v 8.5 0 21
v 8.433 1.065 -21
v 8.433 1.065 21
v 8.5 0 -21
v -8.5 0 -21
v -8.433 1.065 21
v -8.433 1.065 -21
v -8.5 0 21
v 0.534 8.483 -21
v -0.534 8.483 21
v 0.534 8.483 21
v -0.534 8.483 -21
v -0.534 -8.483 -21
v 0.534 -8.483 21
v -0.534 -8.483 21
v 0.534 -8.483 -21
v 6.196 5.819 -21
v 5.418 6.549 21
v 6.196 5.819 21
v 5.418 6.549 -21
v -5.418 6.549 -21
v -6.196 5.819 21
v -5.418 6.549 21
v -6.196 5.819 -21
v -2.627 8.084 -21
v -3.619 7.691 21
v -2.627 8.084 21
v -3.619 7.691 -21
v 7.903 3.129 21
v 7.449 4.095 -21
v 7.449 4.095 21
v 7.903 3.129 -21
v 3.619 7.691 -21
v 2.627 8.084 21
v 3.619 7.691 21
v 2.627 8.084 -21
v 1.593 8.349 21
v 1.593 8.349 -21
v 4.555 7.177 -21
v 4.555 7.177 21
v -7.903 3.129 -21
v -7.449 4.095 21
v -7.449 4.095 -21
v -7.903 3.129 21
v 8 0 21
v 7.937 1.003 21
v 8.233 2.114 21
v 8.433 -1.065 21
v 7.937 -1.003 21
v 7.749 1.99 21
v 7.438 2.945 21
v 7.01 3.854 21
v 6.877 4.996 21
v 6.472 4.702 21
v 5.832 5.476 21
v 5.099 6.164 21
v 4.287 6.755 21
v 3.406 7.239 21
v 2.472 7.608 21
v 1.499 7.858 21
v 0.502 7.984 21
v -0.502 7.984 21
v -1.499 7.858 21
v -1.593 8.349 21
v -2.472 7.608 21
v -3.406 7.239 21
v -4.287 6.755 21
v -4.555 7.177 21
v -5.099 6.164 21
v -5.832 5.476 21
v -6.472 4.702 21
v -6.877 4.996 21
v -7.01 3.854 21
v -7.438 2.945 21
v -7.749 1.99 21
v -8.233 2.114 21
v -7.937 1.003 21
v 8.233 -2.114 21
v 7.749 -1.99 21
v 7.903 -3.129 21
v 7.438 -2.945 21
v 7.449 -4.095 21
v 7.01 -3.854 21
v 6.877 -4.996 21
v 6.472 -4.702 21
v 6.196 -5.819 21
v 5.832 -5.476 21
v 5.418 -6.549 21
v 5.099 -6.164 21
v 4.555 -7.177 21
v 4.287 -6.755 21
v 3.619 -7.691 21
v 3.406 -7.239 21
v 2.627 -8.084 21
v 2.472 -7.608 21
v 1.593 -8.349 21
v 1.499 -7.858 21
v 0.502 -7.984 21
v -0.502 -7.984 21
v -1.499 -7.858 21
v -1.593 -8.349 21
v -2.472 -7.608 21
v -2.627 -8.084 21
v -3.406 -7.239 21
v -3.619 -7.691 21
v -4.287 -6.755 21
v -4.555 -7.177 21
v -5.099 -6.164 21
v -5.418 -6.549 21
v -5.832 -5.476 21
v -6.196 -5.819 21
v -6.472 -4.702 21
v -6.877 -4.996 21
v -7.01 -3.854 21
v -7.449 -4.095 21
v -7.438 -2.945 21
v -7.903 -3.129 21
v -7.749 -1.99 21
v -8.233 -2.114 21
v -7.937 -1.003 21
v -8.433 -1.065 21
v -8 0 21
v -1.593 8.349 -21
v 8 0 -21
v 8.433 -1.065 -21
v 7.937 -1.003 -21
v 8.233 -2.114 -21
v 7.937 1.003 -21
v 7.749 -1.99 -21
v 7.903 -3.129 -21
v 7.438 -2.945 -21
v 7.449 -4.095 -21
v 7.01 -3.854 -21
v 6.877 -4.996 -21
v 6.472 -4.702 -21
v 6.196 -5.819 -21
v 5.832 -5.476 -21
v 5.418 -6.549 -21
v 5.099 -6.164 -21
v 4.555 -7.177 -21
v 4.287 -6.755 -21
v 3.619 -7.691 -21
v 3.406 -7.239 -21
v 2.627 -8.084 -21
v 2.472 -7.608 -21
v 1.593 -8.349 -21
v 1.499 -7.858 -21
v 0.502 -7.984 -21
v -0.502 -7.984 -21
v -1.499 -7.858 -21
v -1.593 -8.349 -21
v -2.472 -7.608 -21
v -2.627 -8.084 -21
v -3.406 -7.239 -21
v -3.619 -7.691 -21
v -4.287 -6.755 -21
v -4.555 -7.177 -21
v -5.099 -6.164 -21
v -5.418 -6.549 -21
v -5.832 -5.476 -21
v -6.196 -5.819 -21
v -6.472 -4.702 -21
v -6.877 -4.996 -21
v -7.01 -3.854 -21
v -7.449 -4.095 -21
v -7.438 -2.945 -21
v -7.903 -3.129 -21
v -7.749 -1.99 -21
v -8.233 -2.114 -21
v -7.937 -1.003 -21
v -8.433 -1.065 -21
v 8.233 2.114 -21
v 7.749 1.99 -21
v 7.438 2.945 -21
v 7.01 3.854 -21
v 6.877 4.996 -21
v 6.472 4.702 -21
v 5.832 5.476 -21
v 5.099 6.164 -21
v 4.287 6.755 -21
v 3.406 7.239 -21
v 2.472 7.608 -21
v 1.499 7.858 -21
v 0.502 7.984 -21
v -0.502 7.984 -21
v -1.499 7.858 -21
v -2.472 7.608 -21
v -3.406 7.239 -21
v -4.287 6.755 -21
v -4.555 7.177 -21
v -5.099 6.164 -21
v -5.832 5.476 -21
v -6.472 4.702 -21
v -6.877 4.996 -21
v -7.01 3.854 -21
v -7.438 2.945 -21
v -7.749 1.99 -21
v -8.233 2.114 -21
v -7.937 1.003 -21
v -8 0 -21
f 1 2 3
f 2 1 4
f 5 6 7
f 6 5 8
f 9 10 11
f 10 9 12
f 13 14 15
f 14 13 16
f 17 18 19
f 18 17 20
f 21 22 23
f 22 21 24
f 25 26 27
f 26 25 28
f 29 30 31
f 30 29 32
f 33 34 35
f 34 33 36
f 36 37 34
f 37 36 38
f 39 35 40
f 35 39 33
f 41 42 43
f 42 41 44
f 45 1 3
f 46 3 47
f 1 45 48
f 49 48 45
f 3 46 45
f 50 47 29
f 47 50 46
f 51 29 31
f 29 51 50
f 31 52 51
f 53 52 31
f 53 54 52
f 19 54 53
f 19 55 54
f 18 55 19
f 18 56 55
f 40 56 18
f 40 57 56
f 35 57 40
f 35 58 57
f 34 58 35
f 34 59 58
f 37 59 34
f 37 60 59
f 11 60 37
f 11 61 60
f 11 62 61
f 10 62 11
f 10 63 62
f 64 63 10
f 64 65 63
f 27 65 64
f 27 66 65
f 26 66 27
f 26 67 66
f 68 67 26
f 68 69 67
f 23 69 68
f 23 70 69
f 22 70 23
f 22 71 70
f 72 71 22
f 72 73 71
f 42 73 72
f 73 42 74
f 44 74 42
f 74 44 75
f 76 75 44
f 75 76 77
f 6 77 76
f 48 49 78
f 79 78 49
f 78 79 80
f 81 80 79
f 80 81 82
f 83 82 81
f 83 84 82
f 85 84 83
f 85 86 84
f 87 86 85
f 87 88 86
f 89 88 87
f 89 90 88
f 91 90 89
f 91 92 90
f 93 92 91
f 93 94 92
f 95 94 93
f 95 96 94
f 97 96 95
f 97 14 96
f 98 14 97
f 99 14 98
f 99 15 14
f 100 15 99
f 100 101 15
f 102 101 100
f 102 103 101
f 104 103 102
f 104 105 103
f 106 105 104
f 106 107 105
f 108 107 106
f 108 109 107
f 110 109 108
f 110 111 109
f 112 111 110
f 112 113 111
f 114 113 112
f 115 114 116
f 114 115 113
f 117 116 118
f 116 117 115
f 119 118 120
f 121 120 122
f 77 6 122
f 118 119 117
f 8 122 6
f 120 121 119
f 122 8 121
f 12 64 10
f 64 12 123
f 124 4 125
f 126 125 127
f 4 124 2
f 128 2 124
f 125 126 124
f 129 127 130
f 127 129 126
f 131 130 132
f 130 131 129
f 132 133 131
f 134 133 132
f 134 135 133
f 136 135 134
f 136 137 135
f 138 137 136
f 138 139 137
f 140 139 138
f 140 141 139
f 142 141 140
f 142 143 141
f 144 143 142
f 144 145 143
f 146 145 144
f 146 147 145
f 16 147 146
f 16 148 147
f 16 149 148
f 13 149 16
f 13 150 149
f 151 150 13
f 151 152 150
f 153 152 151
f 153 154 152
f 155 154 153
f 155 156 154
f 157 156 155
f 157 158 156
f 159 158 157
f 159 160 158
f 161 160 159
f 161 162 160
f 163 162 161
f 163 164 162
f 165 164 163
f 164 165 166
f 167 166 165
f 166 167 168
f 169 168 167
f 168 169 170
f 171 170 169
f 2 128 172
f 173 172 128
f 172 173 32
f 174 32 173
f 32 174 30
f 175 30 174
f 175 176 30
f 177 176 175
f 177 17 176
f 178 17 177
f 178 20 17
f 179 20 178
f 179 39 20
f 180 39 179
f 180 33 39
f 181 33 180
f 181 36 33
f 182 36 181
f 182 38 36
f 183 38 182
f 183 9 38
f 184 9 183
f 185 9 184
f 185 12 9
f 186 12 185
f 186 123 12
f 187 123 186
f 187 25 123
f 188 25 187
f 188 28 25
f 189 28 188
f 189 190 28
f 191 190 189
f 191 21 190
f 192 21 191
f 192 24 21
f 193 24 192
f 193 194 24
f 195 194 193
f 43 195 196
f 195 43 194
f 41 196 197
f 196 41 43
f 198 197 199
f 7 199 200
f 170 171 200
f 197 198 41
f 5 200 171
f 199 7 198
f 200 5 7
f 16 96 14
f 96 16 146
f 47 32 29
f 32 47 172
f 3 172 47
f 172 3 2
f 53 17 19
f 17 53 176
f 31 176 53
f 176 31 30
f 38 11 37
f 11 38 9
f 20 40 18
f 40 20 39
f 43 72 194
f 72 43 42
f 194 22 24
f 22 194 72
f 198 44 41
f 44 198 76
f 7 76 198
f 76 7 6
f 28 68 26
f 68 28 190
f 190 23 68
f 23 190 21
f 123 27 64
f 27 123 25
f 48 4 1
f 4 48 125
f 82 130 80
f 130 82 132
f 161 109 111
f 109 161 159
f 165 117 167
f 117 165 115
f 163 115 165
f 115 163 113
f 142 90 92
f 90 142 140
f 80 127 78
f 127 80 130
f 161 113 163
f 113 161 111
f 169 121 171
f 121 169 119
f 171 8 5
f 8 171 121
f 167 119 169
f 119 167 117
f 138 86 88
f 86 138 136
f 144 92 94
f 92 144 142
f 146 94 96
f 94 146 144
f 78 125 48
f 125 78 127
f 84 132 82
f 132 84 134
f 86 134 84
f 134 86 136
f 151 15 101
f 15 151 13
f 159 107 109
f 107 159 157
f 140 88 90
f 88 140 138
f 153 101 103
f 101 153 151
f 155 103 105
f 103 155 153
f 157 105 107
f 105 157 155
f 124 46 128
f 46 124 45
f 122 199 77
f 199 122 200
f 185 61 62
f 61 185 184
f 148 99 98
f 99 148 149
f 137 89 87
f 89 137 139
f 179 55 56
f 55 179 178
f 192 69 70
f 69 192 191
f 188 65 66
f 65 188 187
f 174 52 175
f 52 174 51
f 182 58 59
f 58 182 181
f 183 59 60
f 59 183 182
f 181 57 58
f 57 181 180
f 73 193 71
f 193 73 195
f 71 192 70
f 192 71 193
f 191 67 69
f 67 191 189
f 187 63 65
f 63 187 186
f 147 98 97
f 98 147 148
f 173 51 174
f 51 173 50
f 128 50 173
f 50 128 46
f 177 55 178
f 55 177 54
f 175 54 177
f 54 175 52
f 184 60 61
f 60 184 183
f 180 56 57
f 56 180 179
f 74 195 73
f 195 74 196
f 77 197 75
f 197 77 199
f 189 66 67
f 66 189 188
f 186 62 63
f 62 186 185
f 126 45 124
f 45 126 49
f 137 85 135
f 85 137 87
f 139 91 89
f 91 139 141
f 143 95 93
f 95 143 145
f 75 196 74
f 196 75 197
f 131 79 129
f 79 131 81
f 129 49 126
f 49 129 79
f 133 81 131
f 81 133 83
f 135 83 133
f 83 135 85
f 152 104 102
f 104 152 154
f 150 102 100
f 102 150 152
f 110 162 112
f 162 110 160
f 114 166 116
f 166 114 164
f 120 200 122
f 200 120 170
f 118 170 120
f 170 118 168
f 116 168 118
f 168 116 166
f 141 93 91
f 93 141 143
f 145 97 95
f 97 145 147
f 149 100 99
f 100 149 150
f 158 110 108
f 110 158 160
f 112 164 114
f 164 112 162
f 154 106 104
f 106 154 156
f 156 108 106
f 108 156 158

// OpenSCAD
$fn = 50;


difference() {
	union() {
		translate(v = [0, 0, -21.0000000000]) {
			cylinder(h = 42, r = 8.5000000000);
		}
	}
	union() {
		translate(v = [0, 0, -100.0000000000]) {
			cylinder(h = 200, r = 8);
		}
	}
}
